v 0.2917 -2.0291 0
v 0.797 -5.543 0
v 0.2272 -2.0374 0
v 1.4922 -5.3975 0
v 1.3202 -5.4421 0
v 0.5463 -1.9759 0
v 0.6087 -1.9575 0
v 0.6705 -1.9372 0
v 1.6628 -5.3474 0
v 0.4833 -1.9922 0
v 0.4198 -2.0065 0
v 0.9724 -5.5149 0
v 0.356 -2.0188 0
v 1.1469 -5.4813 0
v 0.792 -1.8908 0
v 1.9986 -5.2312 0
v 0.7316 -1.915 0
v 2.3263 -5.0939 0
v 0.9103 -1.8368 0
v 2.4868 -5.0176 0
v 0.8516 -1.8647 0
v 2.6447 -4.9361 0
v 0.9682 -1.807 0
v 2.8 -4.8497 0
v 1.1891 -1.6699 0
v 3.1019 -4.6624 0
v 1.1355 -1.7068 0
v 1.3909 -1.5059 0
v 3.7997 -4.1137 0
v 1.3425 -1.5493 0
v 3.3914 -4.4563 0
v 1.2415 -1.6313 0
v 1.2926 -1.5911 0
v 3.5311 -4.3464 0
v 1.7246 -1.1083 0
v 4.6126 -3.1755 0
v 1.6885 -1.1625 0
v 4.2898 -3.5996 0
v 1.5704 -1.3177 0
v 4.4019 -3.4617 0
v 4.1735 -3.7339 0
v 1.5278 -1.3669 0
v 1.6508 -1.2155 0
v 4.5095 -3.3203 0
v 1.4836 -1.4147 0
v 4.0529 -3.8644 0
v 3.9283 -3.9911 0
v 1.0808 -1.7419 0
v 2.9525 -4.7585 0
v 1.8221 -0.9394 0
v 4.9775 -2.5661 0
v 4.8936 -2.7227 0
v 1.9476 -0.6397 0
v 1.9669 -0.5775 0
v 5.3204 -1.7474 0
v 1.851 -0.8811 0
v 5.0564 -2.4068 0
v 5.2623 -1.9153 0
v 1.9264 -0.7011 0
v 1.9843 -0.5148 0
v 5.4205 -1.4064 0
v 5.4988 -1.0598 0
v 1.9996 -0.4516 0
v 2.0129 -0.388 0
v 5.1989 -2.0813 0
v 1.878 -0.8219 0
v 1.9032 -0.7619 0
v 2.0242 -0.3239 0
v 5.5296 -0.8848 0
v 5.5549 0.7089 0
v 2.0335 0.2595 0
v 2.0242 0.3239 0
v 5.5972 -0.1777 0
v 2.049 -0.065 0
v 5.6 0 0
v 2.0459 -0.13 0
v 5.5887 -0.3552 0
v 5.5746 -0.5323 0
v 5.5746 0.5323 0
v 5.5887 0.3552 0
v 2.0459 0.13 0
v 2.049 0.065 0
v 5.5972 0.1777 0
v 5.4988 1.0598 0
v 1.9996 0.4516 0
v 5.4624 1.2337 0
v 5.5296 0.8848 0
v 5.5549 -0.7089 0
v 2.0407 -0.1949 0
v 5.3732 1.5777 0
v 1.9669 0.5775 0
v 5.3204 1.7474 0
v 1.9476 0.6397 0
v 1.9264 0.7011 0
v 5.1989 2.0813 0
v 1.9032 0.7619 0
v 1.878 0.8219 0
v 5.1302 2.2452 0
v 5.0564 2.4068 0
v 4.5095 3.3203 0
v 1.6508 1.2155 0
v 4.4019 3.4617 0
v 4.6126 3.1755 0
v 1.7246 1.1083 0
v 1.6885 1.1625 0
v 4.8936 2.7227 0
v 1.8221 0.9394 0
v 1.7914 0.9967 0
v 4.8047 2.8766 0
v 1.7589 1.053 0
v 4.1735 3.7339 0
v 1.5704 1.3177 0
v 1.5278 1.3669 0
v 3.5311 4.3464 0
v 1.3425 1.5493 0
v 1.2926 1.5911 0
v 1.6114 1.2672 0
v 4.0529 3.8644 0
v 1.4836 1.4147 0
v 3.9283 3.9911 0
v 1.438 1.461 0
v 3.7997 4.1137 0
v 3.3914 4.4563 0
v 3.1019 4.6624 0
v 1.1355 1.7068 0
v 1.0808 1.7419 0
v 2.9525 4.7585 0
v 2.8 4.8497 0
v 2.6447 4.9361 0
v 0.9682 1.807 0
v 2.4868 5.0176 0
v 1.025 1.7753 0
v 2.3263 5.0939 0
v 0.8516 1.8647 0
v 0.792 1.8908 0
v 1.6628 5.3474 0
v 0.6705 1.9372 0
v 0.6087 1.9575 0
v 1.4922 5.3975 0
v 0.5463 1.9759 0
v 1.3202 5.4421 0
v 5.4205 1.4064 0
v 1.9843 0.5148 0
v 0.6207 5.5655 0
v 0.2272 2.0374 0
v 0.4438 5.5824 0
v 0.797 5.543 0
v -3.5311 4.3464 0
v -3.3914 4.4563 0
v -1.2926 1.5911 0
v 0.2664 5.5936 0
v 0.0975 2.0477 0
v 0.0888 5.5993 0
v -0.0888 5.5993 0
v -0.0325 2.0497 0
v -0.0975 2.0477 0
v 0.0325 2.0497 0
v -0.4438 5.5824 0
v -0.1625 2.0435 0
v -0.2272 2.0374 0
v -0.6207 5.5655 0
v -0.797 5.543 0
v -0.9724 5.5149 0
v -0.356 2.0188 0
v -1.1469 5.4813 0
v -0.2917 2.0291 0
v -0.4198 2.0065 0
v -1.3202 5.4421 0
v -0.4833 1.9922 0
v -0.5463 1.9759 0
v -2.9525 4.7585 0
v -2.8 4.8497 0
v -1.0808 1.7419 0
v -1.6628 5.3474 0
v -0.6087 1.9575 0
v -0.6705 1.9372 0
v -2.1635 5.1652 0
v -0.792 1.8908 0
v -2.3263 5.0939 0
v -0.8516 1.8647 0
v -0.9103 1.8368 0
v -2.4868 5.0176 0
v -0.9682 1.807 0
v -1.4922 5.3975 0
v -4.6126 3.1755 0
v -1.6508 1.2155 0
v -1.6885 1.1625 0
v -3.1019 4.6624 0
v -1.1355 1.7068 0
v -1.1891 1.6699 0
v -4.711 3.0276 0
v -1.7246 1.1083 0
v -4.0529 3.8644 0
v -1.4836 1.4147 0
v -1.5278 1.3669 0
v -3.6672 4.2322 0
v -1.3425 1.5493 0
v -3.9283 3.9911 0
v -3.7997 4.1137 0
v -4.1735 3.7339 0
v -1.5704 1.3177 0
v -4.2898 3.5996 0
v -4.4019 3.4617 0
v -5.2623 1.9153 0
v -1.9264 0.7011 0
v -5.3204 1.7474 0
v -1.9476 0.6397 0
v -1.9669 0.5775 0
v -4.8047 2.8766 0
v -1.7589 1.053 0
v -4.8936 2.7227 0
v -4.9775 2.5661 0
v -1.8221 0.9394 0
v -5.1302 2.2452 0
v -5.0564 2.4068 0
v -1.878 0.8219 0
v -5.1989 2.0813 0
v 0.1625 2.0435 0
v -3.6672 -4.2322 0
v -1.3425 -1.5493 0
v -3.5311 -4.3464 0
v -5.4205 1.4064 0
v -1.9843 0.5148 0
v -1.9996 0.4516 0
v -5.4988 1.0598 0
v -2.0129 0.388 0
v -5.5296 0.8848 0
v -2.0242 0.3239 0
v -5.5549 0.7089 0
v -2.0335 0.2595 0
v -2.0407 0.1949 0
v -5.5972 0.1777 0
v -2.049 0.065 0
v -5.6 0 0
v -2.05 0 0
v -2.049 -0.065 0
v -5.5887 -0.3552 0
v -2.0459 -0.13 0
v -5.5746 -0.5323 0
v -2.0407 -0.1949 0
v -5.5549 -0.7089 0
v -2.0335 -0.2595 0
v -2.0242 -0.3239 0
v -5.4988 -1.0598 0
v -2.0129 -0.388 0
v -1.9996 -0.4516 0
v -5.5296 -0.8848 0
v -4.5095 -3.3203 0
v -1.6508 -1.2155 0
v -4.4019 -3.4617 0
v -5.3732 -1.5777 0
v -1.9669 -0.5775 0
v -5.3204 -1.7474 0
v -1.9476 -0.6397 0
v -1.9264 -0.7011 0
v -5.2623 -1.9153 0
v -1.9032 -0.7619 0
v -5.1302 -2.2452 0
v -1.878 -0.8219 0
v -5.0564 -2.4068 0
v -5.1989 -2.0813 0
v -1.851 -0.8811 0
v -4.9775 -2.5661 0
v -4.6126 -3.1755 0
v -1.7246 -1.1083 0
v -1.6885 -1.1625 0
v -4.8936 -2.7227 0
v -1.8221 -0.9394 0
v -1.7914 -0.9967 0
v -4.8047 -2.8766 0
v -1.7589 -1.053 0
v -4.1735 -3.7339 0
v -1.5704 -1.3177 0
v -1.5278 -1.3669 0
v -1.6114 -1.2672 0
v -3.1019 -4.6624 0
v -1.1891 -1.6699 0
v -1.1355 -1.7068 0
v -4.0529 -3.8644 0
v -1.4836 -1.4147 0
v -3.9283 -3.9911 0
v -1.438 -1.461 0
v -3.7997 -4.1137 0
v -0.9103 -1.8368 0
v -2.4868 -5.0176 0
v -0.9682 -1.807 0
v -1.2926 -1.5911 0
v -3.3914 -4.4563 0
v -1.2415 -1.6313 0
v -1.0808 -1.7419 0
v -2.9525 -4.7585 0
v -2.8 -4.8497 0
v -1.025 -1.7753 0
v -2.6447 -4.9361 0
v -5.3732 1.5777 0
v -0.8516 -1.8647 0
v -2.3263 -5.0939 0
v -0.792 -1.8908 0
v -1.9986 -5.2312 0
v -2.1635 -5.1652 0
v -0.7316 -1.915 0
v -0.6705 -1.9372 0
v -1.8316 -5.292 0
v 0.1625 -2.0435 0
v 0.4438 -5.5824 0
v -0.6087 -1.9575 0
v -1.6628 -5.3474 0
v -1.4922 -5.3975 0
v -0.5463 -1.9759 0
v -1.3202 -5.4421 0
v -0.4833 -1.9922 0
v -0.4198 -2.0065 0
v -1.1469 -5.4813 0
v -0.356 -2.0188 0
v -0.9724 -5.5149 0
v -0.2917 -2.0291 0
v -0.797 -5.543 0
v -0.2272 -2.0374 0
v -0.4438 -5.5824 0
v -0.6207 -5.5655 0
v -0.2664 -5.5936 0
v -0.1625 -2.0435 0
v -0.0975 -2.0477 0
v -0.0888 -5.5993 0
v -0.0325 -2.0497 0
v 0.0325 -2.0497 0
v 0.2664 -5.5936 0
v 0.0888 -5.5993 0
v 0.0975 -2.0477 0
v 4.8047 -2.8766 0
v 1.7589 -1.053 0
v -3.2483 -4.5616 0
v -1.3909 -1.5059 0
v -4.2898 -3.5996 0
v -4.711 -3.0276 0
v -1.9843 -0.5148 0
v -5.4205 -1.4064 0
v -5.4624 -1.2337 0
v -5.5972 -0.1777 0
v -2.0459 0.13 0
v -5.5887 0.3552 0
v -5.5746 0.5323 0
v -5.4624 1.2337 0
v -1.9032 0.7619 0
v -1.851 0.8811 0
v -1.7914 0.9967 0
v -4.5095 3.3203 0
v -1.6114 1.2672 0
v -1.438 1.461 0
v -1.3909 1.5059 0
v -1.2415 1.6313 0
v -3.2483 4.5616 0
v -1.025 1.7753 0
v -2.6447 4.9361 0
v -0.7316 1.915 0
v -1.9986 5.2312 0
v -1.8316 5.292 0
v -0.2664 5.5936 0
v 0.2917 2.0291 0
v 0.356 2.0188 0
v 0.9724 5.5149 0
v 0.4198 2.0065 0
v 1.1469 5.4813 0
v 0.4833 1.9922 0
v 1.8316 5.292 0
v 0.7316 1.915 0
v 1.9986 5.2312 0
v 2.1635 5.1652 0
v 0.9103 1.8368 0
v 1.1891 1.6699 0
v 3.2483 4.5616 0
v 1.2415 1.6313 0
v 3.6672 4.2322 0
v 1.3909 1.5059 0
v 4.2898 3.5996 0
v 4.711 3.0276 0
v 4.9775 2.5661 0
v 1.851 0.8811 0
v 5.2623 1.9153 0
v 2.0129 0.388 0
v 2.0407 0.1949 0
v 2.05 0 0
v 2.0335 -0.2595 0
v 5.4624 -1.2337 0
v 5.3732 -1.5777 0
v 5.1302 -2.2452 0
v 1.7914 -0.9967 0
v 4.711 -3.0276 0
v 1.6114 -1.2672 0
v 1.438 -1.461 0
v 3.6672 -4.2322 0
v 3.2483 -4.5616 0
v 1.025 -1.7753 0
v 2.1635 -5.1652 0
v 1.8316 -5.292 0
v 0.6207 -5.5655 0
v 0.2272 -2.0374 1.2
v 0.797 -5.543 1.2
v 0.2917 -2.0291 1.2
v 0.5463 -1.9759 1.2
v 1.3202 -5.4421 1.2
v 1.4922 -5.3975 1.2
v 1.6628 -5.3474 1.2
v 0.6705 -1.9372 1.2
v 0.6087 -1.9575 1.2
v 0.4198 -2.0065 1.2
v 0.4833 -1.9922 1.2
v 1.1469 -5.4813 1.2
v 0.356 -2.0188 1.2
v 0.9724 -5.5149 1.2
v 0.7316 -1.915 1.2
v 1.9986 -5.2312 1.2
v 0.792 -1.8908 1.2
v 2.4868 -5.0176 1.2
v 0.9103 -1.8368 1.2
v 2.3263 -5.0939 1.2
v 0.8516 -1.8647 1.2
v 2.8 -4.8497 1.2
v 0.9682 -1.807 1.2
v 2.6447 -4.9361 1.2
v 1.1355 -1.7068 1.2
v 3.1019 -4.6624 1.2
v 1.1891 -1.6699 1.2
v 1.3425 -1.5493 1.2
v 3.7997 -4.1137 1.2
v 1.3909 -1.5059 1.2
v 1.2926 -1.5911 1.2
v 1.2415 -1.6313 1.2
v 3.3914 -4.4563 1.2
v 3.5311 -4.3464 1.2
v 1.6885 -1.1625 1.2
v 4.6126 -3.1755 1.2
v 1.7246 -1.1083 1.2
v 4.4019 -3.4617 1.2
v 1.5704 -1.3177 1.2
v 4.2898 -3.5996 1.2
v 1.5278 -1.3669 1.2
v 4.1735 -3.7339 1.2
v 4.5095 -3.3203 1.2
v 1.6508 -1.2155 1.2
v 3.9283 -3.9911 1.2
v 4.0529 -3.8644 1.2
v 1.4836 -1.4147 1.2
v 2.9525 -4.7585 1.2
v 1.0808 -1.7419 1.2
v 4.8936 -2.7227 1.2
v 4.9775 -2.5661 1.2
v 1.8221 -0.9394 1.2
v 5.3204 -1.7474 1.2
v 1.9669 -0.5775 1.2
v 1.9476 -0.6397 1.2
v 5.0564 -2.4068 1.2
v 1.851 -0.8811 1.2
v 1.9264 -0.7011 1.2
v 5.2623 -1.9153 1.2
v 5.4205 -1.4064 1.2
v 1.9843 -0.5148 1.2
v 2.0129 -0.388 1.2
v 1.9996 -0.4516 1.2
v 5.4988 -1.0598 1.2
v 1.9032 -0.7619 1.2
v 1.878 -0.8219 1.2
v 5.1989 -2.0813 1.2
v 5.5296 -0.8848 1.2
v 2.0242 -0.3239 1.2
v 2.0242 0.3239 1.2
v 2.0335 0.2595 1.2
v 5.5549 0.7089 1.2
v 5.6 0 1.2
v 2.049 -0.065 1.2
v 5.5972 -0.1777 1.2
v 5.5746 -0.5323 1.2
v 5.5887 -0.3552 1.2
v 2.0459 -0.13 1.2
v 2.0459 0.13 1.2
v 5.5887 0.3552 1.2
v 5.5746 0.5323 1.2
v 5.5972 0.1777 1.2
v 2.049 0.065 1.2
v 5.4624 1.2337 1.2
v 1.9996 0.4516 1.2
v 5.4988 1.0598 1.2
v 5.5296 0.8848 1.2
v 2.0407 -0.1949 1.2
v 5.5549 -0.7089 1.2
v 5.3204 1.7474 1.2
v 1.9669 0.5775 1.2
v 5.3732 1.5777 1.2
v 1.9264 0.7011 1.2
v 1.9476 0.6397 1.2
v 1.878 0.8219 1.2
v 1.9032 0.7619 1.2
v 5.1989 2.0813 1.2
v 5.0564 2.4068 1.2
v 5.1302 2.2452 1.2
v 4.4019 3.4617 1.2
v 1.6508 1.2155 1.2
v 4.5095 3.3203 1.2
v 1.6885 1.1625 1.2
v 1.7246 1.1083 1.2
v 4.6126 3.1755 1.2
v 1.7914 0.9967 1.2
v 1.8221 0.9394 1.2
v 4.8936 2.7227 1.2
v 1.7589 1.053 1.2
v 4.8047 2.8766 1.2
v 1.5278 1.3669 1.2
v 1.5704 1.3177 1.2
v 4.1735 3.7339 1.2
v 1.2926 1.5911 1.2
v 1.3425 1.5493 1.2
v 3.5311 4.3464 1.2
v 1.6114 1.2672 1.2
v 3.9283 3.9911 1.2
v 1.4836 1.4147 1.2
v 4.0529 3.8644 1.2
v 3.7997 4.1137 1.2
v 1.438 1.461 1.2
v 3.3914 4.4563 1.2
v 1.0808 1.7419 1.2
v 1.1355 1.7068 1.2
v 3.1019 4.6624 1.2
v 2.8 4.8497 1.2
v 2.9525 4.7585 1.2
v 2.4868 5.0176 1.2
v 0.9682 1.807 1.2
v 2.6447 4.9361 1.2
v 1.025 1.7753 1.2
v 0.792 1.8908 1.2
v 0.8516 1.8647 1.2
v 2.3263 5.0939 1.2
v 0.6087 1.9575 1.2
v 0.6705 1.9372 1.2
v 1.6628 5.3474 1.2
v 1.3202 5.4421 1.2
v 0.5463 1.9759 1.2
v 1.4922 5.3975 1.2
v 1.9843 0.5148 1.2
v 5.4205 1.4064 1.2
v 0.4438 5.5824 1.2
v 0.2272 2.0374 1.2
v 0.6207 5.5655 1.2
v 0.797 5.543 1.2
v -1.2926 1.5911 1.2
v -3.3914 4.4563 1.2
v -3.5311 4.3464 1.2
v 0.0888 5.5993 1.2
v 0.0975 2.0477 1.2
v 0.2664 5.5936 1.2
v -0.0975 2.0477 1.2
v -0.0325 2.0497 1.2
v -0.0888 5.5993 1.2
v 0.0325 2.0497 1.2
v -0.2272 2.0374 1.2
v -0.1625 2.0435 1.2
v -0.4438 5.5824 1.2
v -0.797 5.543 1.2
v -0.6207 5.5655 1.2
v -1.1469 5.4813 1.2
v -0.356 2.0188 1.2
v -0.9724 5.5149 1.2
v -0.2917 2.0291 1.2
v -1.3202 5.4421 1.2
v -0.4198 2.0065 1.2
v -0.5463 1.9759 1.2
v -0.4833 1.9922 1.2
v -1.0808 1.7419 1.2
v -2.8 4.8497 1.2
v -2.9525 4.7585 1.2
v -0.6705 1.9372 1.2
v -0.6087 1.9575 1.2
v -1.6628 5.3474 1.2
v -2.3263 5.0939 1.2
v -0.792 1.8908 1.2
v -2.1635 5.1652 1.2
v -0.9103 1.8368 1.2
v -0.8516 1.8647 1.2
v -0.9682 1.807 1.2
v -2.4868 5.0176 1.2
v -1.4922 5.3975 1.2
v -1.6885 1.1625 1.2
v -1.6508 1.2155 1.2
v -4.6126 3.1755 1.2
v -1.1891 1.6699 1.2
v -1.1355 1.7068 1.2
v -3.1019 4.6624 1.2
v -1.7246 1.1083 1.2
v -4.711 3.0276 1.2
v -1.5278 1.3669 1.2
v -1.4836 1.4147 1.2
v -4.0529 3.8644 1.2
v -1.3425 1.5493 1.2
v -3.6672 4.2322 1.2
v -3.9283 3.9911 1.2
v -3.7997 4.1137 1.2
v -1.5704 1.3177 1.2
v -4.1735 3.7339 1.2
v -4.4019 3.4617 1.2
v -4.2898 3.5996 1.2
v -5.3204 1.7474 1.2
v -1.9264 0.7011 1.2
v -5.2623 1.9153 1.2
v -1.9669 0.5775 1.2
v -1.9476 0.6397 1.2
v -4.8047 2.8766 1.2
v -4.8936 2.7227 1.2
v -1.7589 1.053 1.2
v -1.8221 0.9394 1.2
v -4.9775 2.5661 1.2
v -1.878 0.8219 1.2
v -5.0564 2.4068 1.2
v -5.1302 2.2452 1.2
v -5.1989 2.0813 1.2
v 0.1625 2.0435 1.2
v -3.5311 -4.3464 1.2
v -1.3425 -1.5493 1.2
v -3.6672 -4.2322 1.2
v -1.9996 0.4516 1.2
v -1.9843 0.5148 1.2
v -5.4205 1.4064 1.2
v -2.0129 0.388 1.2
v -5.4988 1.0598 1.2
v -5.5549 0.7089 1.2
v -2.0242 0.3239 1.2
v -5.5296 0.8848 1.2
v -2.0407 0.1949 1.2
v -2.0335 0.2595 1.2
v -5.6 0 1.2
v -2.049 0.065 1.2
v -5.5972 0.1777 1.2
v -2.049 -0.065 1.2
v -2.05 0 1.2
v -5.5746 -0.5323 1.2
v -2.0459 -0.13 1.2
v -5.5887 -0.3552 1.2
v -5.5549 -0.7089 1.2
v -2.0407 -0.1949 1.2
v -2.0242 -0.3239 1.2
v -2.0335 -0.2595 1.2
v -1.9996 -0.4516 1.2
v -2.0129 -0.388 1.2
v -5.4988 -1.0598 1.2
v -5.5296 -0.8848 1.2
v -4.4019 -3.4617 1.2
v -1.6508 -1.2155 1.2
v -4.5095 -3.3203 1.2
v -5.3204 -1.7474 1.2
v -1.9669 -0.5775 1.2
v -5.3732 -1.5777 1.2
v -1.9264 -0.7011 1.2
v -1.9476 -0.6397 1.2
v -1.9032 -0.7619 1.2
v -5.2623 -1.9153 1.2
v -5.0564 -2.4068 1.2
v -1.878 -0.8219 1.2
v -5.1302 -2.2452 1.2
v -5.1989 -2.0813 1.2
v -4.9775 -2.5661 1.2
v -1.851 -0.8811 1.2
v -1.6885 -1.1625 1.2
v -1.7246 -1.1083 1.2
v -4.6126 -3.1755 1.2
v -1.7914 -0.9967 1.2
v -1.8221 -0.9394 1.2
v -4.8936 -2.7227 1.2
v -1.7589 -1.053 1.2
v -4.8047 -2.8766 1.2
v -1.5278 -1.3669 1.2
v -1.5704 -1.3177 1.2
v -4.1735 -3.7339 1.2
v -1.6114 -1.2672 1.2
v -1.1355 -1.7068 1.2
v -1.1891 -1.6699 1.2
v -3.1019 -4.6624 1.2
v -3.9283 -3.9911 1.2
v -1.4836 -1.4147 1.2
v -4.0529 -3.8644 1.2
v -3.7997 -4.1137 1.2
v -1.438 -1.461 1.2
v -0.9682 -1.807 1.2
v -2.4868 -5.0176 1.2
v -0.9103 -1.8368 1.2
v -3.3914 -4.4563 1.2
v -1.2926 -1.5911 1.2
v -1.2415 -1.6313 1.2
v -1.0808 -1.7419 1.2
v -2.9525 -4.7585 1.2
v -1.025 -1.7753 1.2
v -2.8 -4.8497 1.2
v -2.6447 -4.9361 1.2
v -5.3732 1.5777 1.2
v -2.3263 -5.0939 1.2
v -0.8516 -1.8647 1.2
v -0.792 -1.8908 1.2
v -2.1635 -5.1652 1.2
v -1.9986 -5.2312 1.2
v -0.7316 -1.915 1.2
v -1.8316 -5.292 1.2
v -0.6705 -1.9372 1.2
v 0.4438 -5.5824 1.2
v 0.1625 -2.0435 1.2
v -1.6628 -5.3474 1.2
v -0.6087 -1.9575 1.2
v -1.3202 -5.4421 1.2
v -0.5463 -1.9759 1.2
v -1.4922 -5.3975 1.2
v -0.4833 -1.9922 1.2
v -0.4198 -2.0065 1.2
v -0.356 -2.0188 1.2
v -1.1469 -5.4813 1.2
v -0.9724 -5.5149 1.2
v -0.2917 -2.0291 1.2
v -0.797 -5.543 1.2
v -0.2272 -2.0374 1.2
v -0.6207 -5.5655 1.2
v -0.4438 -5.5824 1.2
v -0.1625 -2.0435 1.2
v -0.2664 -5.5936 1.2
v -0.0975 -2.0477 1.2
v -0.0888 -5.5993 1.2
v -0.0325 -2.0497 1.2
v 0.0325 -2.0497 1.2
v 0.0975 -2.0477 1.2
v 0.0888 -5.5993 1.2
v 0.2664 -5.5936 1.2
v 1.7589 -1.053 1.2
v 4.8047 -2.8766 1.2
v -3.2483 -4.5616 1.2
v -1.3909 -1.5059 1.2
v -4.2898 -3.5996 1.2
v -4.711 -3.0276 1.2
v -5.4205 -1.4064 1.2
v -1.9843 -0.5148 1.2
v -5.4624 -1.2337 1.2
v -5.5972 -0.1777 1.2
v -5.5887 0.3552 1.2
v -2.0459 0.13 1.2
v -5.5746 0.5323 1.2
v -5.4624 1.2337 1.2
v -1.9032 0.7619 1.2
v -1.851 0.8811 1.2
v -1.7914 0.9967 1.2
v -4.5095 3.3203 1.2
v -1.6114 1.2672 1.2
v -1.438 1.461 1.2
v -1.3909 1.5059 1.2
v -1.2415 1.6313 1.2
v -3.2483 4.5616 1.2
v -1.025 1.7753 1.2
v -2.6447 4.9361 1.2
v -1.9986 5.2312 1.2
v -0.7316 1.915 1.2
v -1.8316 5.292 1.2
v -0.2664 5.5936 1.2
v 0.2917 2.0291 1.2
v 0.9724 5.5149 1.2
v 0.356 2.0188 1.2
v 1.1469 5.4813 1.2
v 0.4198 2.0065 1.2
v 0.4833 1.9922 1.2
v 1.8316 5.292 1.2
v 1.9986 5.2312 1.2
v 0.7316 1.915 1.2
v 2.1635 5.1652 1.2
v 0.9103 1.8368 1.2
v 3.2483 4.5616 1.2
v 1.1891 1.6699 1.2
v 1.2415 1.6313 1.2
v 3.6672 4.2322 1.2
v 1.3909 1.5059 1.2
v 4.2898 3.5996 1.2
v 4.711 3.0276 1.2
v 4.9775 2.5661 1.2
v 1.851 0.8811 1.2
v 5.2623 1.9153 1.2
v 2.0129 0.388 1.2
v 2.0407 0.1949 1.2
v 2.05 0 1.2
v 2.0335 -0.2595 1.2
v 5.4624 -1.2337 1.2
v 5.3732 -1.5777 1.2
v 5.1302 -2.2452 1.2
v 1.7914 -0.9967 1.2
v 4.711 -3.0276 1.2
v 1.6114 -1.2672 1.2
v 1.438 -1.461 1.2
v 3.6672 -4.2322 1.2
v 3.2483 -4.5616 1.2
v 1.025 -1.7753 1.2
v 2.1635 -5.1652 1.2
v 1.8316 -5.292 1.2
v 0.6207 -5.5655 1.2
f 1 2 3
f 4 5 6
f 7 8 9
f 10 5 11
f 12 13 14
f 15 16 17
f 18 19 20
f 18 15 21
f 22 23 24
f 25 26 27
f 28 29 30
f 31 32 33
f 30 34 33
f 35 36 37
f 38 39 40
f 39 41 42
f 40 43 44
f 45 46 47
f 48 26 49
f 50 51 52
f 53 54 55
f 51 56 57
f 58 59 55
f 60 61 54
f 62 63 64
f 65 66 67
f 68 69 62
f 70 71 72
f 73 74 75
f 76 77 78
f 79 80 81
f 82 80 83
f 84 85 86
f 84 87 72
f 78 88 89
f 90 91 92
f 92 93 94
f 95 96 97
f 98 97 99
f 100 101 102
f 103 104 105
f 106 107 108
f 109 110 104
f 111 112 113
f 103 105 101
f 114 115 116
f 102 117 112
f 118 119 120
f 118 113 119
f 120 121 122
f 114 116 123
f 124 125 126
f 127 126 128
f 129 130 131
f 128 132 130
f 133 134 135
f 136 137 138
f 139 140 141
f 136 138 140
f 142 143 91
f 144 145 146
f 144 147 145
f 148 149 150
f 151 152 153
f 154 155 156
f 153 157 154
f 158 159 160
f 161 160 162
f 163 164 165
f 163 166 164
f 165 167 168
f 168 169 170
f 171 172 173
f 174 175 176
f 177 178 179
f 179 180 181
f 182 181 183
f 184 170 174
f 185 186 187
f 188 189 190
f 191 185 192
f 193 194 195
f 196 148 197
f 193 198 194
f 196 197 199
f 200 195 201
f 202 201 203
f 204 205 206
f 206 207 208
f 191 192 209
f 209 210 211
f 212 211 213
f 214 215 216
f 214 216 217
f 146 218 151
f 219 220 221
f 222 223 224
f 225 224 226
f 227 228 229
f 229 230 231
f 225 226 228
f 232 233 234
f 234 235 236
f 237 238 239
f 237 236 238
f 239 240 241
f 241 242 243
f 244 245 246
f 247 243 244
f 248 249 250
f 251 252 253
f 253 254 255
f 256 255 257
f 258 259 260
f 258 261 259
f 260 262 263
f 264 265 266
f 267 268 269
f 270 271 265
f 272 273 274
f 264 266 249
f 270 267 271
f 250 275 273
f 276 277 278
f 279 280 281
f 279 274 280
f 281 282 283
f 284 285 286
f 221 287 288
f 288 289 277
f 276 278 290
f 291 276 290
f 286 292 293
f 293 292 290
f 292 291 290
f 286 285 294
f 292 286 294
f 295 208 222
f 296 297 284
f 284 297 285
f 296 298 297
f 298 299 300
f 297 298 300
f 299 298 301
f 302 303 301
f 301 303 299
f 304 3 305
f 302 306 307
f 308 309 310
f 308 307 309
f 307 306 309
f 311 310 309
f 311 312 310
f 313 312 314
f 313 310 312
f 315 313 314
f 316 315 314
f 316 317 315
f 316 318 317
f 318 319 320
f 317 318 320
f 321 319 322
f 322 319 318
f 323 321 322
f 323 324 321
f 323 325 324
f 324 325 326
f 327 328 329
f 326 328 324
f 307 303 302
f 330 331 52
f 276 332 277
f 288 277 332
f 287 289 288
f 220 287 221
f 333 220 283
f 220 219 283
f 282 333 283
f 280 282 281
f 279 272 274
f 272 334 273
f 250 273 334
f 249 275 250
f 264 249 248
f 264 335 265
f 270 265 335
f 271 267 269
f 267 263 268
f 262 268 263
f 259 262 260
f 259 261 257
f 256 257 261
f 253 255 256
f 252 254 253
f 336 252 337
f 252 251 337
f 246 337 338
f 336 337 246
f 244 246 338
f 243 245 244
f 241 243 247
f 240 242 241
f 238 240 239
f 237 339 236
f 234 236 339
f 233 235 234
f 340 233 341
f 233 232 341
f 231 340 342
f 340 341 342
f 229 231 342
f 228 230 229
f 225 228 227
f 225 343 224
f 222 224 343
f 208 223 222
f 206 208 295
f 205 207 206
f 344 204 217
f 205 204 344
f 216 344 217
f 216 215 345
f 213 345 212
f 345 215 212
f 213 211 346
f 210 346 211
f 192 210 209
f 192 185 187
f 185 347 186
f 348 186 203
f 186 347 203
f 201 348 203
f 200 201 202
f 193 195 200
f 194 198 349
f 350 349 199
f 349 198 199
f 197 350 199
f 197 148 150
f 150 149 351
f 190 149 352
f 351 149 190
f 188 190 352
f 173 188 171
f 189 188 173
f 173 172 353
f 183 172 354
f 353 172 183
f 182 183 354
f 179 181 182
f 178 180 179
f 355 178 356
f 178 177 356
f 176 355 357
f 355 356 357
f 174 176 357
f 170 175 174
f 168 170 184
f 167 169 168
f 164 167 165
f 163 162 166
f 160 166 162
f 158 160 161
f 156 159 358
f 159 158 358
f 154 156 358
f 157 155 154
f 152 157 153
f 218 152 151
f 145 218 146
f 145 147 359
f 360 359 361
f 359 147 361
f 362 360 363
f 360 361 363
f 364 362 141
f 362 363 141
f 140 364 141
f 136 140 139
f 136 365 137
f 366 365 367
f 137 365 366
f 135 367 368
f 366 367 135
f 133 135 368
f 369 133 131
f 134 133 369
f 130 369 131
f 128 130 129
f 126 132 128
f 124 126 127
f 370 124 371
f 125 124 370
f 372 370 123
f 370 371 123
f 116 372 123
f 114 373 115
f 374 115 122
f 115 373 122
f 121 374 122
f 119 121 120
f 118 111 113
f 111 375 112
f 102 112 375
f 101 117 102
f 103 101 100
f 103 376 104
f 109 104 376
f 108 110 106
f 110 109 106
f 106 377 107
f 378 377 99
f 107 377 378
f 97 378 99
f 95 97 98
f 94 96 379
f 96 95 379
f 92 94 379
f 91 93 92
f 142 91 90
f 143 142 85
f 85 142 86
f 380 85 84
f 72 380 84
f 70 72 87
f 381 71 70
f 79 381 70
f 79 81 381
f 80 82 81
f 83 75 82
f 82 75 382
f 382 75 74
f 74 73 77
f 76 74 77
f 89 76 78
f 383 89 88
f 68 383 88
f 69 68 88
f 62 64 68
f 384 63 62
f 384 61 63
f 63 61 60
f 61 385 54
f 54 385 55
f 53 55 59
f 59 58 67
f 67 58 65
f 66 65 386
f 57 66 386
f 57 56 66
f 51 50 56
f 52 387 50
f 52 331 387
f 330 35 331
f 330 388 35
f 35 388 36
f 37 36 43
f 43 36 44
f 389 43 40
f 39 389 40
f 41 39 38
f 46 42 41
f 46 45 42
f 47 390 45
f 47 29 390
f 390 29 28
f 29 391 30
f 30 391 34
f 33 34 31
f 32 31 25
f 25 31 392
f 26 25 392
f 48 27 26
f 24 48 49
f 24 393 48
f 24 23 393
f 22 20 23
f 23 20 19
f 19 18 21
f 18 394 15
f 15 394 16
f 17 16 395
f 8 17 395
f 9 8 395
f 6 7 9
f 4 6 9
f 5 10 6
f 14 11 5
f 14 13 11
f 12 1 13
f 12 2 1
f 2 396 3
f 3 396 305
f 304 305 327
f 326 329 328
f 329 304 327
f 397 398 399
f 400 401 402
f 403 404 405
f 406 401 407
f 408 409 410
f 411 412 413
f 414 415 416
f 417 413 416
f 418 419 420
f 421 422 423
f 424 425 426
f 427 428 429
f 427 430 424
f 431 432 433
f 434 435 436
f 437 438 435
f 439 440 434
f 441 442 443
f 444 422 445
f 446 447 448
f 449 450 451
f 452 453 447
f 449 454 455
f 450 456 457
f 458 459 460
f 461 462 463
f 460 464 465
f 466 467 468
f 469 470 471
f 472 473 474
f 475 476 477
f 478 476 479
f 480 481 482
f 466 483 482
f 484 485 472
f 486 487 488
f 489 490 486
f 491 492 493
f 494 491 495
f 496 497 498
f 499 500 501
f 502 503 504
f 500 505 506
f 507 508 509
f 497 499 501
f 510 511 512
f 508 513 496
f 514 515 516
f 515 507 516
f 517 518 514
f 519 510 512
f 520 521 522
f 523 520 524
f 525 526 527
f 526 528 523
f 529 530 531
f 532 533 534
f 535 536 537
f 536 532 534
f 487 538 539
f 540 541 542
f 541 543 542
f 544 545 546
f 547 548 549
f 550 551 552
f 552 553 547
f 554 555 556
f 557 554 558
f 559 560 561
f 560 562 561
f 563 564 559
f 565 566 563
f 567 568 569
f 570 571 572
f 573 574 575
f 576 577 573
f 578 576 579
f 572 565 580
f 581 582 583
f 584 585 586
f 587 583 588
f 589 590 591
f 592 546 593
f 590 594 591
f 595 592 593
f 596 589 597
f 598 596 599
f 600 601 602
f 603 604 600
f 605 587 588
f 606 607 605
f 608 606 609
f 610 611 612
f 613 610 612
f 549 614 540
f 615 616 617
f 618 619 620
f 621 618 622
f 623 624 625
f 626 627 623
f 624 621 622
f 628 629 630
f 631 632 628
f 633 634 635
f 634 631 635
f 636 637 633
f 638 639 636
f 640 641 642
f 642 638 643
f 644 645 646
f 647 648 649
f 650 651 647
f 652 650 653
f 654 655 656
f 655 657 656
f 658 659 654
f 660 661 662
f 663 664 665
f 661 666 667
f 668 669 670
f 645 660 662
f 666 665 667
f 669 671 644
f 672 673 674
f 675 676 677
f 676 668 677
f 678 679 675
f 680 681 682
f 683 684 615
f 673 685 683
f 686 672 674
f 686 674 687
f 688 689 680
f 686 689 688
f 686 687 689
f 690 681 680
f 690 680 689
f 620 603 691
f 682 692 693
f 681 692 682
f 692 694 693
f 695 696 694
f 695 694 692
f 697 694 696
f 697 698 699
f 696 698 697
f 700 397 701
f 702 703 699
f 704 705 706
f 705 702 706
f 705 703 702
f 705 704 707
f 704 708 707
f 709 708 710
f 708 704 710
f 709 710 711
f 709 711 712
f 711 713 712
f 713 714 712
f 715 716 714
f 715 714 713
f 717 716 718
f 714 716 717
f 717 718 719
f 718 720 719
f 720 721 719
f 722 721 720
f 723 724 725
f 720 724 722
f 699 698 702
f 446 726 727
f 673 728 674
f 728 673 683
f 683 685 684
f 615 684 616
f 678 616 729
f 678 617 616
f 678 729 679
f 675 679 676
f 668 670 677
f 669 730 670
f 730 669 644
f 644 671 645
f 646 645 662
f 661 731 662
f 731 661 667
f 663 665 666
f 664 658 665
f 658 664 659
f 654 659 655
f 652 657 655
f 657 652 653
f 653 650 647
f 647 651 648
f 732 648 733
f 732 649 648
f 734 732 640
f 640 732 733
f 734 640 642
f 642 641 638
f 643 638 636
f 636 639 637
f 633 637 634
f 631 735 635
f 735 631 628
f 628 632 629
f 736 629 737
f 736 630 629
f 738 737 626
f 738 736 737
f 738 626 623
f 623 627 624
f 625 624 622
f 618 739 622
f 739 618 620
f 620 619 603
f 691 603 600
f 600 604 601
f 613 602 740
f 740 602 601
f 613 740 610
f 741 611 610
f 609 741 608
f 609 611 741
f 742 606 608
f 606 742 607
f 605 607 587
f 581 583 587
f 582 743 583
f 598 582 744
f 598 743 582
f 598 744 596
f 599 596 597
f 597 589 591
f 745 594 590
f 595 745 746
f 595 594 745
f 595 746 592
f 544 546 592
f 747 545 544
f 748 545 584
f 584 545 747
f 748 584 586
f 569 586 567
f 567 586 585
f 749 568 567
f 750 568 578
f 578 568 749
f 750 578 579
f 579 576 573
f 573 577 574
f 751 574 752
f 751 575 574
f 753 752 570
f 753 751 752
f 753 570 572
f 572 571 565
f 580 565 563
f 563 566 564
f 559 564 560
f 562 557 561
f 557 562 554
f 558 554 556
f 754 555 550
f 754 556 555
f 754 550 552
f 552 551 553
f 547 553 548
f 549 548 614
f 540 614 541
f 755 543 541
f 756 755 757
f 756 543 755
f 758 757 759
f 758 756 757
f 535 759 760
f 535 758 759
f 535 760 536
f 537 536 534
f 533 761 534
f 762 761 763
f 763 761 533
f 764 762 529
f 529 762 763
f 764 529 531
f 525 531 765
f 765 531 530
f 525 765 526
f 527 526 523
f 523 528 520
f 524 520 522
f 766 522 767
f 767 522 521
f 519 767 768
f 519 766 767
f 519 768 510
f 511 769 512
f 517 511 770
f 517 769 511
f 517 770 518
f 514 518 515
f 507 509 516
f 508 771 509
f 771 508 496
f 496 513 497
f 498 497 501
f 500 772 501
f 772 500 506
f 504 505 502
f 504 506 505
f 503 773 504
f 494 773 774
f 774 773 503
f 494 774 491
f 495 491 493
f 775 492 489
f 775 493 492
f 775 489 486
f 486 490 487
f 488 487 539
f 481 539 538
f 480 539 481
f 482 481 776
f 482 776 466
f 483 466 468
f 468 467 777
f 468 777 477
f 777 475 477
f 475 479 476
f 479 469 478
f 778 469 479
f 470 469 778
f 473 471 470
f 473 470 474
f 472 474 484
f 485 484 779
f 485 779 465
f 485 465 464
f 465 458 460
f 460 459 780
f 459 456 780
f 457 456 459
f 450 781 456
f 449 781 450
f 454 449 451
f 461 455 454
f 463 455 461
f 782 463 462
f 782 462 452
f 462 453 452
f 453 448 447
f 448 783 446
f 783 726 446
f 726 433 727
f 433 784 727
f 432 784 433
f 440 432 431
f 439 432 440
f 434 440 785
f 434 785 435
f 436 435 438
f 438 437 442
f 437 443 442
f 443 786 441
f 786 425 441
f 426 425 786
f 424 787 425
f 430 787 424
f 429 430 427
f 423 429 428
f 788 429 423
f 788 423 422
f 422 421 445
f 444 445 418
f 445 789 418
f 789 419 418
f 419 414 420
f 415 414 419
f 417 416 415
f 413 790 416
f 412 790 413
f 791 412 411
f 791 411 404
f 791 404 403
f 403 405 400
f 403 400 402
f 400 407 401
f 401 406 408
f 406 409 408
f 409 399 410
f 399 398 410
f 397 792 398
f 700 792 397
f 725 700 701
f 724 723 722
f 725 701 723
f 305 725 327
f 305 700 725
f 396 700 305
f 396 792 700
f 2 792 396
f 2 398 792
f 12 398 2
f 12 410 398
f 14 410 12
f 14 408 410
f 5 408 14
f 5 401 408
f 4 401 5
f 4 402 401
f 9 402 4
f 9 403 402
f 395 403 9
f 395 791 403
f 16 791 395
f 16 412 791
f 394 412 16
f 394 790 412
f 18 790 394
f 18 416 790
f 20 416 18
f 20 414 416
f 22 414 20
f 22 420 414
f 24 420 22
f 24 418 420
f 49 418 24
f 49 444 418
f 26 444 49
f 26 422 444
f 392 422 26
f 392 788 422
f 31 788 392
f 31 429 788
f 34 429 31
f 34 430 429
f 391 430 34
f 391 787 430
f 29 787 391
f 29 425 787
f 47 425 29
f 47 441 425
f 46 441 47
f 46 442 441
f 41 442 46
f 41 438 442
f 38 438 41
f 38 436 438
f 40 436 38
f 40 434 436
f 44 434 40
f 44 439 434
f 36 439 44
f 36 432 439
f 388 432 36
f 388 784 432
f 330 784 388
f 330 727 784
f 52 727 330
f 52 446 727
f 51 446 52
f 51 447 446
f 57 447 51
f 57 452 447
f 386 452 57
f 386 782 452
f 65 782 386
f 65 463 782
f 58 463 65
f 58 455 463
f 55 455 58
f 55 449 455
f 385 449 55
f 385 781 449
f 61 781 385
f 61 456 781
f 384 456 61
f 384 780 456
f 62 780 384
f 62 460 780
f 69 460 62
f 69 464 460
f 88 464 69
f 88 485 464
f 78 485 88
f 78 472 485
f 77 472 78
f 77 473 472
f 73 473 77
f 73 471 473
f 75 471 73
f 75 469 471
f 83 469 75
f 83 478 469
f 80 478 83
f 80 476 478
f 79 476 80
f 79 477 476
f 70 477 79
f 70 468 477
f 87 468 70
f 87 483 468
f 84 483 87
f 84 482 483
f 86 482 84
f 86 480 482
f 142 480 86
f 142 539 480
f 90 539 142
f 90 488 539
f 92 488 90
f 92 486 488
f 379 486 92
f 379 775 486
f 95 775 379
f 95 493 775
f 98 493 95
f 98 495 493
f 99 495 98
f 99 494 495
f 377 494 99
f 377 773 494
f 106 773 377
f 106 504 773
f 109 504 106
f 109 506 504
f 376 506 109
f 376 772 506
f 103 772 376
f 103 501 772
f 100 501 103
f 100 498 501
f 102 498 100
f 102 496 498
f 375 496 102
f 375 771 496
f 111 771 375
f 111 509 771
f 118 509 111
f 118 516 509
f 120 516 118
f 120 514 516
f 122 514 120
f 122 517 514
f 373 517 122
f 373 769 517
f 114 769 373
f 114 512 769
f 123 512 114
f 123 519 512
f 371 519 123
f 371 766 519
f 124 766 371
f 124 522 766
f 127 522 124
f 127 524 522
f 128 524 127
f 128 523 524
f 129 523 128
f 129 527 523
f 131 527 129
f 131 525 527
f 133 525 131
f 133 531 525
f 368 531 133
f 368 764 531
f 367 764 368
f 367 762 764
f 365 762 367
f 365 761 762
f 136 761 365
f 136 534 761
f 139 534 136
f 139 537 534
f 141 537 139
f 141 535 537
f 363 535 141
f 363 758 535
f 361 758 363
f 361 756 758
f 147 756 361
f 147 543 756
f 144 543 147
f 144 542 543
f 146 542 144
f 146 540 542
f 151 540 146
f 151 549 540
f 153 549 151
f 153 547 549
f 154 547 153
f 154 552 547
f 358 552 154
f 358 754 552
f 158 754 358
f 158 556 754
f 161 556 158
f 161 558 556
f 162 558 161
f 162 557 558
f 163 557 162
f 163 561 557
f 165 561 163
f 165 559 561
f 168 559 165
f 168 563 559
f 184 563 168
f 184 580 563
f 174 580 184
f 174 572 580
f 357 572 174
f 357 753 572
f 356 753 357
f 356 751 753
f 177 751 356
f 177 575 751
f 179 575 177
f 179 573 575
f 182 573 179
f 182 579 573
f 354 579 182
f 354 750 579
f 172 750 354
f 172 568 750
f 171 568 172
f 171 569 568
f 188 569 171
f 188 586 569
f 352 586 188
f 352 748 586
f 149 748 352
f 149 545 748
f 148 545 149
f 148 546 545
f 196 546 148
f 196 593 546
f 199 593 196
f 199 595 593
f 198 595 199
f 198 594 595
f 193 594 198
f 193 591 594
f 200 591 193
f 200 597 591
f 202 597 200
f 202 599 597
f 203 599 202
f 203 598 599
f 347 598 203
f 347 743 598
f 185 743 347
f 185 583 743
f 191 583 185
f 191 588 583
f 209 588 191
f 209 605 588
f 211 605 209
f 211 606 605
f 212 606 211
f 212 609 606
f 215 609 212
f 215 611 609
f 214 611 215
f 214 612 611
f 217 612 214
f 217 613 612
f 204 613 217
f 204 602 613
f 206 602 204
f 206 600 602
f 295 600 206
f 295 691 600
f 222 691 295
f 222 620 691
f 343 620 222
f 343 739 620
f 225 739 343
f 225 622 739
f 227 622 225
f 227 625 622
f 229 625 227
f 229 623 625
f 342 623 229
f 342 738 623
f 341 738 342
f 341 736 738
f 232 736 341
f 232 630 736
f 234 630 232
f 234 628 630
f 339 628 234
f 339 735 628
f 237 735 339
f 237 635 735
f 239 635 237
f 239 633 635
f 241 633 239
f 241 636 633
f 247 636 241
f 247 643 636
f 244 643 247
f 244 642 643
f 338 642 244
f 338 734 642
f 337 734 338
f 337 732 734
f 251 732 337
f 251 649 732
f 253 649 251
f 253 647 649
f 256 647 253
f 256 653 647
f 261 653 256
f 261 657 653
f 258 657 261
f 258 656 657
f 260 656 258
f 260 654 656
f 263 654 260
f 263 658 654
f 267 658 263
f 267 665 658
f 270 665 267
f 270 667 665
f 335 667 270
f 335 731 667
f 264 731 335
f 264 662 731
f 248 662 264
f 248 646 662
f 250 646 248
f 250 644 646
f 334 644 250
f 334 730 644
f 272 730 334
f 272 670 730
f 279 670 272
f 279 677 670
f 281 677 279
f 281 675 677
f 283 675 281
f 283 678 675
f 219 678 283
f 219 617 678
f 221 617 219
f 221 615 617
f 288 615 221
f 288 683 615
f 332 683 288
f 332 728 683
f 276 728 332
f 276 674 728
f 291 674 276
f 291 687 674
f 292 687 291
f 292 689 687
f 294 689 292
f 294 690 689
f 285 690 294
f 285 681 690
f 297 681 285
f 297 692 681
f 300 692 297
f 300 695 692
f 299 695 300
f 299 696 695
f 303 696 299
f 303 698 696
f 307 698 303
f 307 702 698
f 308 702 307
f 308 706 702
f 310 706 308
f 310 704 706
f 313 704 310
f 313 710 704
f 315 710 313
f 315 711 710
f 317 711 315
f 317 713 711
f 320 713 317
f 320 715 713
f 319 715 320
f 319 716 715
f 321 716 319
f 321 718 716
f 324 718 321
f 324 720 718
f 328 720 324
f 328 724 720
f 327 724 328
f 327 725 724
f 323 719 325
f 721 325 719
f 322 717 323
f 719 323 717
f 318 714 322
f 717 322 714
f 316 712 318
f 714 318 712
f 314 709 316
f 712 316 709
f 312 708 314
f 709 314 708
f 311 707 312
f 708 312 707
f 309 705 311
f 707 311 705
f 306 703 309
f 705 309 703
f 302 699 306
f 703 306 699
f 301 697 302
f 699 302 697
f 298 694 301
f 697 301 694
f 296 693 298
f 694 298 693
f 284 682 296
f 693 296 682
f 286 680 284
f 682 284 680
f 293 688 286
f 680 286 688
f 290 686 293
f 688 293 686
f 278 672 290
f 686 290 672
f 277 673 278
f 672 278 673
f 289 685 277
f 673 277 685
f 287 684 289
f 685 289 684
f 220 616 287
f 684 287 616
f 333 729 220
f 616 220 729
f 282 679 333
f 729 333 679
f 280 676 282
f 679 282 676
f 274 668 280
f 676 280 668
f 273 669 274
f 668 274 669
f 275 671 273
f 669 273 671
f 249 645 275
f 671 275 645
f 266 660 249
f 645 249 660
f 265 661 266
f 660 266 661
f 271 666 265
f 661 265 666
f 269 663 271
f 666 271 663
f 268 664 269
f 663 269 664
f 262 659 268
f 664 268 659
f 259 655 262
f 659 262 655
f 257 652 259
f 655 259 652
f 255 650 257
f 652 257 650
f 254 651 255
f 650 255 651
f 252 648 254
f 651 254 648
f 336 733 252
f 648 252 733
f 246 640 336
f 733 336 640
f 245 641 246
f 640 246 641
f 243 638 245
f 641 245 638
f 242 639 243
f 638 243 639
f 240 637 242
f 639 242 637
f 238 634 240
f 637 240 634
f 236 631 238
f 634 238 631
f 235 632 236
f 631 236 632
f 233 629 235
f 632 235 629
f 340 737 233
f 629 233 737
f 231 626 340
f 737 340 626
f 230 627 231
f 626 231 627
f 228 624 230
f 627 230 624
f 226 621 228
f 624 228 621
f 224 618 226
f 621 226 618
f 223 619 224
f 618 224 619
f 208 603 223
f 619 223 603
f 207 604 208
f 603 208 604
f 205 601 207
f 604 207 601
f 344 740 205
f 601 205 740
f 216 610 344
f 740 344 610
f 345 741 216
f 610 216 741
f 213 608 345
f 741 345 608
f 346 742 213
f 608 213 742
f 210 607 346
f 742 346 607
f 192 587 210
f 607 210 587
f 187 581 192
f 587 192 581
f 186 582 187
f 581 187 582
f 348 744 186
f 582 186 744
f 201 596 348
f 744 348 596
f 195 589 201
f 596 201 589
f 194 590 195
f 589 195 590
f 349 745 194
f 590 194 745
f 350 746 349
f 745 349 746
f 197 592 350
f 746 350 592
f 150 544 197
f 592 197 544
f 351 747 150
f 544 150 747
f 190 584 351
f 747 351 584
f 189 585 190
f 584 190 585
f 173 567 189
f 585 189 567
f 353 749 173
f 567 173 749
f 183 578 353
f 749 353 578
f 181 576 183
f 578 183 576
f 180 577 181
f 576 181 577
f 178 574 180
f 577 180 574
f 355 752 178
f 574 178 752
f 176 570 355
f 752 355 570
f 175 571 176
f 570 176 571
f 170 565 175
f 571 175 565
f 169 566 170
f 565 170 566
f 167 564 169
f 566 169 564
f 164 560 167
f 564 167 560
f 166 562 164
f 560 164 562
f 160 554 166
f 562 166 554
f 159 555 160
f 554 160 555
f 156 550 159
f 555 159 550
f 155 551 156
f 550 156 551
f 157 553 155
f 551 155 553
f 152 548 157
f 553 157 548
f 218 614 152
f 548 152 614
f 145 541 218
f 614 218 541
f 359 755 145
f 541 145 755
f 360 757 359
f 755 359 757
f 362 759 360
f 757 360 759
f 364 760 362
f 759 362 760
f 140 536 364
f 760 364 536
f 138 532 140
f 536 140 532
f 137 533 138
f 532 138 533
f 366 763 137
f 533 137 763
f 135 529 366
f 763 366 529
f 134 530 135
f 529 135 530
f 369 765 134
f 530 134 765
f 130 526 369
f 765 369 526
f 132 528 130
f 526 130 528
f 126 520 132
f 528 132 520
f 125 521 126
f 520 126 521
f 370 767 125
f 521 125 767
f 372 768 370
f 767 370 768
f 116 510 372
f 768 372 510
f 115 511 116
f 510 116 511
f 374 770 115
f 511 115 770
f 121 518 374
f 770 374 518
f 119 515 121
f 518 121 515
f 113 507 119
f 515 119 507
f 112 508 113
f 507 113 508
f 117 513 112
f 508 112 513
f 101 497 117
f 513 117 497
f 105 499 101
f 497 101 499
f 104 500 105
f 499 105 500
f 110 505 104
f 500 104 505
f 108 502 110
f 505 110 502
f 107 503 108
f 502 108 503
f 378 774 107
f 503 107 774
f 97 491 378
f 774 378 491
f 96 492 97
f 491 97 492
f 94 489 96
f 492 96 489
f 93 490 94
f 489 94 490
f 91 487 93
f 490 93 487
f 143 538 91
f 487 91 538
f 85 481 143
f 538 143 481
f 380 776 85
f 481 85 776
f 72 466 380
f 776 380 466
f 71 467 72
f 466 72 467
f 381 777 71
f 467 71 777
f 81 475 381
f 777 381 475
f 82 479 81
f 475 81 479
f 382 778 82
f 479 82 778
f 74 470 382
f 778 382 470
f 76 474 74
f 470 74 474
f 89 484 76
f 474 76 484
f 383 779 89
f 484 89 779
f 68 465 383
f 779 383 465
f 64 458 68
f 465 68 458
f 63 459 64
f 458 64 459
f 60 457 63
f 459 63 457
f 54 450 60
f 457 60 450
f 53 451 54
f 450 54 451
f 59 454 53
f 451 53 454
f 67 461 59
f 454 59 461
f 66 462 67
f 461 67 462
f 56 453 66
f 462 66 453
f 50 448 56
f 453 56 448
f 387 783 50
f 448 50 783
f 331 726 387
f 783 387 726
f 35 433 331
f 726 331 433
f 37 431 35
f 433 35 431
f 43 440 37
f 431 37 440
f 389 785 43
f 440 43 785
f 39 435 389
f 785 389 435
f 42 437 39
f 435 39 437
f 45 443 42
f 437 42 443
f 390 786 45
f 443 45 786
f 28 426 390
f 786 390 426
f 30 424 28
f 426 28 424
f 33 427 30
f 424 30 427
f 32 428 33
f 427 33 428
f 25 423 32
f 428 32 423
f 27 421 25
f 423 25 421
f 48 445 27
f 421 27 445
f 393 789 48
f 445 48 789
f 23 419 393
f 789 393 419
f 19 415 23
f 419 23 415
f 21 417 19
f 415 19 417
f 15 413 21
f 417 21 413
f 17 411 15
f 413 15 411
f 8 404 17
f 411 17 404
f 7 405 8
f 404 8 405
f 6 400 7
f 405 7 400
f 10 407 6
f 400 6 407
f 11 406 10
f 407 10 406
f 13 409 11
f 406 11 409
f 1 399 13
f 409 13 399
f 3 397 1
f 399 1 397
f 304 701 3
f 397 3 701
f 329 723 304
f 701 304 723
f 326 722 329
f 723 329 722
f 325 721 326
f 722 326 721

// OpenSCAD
outerDiameter = 11.2;
innerDiameter = 4.1;
thickness = 1.2;
$fn=198;

linear_extrude(height=thickness)
  difference() { circle(d=outerDiameter); circle(d=innerDiameter); }
